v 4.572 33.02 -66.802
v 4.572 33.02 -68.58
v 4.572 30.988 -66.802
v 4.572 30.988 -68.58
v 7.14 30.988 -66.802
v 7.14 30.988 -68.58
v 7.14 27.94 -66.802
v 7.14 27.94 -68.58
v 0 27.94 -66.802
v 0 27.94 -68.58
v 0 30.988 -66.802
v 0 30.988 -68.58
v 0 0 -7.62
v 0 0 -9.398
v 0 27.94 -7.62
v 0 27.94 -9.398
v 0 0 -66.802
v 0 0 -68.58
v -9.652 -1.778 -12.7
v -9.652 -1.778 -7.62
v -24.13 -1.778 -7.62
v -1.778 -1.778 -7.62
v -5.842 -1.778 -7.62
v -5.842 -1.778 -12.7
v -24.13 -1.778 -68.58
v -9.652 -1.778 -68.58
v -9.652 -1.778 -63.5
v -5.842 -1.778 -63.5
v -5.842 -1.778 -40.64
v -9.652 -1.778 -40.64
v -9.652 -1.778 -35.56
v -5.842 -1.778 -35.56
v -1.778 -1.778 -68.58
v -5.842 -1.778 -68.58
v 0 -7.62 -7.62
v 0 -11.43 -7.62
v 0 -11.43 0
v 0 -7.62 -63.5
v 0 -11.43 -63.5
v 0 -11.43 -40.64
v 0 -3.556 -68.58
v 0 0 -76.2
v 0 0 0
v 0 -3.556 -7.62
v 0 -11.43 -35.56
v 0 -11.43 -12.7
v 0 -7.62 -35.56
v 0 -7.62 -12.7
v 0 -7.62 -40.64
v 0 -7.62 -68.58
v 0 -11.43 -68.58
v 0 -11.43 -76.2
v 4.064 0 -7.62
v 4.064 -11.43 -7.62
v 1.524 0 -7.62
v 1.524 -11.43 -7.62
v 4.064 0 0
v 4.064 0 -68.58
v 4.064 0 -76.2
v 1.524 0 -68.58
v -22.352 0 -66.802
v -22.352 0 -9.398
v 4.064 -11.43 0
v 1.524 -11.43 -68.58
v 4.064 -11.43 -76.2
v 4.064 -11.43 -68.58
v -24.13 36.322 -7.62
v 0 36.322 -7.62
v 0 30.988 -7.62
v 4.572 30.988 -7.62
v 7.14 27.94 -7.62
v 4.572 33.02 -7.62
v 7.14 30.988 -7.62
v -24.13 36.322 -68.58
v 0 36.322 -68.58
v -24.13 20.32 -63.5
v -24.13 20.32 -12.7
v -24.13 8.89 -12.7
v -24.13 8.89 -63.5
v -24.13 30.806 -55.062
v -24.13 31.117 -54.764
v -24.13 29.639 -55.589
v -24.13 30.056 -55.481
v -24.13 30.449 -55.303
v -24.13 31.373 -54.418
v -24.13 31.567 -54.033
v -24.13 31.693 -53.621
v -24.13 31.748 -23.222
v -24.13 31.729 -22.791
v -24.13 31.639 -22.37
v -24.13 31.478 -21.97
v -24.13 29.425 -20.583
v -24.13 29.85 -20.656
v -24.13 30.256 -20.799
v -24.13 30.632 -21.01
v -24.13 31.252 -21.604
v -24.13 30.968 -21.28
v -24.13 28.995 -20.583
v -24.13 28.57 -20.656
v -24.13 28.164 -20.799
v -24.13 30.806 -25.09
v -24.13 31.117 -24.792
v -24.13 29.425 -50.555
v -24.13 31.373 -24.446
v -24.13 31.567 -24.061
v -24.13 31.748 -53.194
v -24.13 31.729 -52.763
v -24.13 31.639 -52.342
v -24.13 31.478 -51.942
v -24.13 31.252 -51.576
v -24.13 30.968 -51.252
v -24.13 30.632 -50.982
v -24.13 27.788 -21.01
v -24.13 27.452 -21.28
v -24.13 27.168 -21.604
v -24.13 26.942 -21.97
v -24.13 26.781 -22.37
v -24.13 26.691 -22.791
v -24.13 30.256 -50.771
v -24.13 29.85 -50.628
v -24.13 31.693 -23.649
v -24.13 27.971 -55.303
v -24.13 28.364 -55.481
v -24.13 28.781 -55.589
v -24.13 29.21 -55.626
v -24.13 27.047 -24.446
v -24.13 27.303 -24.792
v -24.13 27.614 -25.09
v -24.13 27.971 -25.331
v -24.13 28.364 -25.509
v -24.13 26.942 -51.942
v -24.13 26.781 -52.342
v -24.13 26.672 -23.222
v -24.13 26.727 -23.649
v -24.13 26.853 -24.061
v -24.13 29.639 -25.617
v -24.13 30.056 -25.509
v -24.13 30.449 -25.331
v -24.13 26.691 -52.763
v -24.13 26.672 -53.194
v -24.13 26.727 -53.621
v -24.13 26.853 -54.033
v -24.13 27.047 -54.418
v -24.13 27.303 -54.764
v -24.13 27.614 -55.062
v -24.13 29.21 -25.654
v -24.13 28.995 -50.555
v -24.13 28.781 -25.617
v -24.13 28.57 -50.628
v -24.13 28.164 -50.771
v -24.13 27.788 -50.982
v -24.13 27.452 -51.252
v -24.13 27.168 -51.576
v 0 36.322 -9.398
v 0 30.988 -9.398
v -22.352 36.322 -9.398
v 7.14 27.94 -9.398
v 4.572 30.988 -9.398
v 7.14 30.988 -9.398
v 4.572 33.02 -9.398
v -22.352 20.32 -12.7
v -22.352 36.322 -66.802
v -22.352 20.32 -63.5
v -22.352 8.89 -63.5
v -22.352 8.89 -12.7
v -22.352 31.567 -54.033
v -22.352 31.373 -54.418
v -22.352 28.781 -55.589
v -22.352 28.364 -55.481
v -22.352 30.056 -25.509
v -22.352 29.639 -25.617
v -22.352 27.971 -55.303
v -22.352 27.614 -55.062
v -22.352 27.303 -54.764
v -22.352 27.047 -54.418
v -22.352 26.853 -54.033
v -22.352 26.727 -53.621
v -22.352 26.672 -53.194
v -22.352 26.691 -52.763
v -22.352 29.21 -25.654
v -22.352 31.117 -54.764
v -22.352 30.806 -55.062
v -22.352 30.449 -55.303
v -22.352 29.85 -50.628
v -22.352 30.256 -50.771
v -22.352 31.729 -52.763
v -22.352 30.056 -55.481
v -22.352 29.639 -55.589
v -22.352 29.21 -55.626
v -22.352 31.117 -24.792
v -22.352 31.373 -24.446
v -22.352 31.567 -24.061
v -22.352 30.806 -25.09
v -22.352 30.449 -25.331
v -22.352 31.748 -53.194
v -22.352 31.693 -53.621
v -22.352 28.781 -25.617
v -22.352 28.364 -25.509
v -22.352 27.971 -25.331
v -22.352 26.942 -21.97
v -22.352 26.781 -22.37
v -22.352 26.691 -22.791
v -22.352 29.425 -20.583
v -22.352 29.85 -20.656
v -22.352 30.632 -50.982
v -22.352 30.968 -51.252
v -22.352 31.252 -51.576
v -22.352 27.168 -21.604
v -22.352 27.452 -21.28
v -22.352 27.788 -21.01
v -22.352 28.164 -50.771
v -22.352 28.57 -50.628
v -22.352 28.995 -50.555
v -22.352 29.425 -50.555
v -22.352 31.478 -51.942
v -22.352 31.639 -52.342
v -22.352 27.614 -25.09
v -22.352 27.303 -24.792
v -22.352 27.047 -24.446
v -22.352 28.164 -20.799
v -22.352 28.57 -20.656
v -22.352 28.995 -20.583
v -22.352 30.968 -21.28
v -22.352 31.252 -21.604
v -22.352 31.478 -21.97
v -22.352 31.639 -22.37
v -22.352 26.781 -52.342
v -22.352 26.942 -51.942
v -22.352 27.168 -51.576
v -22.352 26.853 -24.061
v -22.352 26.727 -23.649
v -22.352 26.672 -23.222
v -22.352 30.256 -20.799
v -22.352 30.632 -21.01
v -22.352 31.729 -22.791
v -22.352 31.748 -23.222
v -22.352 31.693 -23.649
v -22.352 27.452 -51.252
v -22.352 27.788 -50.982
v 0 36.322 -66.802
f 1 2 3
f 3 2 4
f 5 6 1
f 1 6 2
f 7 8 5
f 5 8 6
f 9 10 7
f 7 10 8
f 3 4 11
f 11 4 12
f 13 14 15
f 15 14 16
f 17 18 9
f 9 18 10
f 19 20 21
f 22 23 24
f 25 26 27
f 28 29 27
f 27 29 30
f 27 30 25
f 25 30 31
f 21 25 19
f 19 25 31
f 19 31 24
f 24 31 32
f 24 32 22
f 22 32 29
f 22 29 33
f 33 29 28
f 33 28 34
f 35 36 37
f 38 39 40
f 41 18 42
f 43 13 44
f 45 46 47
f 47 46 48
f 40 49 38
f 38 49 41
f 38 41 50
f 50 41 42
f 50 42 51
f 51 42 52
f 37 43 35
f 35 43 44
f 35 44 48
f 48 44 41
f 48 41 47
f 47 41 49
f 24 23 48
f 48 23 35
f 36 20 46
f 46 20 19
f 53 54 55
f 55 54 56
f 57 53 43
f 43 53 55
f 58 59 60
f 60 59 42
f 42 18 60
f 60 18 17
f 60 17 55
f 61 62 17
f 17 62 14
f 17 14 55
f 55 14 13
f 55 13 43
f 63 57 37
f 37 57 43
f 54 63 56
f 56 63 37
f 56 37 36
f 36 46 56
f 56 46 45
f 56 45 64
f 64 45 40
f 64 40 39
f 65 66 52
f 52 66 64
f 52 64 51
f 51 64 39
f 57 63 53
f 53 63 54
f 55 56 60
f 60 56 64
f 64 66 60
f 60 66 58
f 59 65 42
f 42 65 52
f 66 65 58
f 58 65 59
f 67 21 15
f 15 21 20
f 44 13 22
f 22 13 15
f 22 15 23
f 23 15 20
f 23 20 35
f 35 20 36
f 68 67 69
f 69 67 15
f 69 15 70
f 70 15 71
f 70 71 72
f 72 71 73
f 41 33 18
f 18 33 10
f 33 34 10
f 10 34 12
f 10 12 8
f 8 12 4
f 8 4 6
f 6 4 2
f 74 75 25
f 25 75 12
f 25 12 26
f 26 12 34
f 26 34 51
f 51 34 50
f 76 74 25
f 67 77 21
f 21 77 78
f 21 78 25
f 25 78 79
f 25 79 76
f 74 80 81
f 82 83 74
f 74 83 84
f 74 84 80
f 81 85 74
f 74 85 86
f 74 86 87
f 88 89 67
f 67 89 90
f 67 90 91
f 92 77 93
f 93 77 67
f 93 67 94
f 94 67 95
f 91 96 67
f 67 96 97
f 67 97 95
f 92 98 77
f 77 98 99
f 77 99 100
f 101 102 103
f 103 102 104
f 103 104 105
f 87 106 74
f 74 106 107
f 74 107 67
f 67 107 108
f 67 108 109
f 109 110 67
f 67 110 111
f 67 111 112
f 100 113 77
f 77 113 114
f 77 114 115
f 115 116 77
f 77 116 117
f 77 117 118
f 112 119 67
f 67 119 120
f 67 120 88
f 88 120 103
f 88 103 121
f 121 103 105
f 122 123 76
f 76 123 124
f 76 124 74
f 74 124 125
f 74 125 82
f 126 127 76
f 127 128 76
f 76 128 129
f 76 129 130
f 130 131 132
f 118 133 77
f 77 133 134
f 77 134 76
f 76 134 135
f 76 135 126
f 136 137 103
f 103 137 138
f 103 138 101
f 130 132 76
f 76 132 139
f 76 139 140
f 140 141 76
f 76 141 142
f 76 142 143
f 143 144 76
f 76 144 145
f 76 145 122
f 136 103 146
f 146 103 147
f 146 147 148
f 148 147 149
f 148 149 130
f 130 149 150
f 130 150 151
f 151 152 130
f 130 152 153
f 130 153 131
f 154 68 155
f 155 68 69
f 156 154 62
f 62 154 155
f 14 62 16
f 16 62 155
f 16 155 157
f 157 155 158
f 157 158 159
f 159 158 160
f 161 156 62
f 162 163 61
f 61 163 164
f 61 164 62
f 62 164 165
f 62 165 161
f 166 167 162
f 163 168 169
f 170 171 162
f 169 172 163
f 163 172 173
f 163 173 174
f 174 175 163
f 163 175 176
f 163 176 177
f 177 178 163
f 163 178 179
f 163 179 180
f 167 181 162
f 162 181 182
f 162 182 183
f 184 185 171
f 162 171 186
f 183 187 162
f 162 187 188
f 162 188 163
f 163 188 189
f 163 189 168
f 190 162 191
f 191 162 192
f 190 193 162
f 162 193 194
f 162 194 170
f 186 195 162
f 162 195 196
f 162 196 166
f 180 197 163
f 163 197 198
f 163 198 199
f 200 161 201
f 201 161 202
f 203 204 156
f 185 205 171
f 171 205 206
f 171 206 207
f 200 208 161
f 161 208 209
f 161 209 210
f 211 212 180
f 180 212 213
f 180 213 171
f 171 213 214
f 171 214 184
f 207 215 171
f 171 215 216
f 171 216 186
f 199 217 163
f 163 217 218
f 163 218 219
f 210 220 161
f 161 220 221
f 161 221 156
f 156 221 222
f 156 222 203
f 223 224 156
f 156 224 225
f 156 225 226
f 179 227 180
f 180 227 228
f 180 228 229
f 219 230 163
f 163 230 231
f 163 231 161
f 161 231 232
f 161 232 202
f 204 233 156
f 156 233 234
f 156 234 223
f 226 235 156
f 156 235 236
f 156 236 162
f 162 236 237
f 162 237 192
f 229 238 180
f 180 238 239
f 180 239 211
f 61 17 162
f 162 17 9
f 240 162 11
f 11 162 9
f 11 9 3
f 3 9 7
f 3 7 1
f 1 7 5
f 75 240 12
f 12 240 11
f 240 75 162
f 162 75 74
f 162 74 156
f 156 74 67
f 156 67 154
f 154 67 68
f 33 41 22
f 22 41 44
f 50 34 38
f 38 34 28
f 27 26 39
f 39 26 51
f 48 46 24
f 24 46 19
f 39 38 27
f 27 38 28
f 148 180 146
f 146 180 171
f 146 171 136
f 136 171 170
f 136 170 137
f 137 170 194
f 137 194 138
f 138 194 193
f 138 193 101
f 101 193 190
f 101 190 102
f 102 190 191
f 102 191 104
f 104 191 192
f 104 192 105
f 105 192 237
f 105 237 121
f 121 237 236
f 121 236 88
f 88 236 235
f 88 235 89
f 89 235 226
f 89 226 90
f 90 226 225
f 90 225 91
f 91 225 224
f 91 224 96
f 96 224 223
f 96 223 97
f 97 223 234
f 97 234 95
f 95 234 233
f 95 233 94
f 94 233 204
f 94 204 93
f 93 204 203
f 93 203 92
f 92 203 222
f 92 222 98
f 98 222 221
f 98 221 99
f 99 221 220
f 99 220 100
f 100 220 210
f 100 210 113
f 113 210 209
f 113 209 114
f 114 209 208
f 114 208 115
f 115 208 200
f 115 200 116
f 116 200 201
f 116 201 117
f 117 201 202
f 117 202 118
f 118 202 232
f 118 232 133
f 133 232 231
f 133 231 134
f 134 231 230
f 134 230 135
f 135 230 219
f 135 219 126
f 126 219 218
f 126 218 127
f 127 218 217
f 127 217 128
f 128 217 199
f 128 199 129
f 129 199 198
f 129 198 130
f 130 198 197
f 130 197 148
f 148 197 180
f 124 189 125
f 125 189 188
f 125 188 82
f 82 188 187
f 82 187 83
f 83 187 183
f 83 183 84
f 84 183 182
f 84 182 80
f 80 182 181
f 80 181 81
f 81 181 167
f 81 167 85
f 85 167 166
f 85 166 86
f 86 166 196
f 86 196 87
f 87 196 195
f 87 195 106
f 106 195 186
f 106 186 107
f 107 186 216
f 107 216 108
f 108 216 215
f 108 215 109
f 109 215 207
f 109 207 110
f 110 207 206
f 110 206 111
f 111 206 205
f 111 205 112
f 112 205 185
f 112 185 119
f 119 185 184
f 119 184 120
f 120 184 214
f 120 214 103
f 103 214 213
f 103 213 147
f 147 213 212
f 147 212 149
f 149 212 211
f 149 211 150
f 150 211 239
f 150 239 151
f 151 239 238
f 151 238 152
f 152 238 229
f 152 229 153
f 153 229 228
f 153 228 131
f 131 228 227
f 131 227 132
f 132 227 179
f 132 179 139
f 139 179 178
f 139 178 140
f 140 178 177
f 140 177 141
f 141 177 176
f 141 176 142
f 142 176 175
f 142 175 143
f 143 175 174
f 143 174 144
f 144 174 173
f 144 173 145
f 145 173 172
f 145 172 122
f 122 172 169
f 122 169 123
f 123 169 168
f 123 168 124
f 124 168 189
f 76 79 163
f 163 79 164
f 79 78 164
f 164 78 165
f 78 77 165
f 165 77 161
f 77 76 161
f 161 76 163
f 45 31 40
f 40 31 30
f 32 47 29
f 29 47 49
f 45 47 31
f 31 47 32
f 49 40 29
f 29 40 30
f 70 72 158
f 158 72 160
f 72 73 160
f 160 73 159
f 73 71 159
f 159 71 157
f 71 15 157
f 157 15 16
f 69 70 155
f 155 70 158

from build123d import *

# Parameters (mm, degrees)
BOSS_EXTRUDE1_DEPTH   = 4.064
BOSS_EXTRUDE1_2_DEPTH = 4.064
SKETCH1_3_W           = 60.96
SKETCH1_3_H           = 9.652
SKETCH1_3_H_2         = 1.778
BOSS_EXTRUDE2_DEPTH   = 1.524
SKETCH1_6_W           = 60.96
SKETCH1_6_H           = 1.778
BOSS_EXTRUDE3_DEPTH   = 24.13
BOSS_EXTRUDE4_DEPTH   = 38.1
BOSS_EXTRUDE7_DEPTH   = 60.96
BOSS_EXTRUDE8_DEPTH   = 60.96
CUT_EXTRUDE2_START    = -5.08
CUT_EXTRUDE2_DEPTH    = 50.8
SKETCH6_R             = 2.54
CUT_EXTRUDE3_DEPTH    = 89.450736232
BOSS_EXTRUDE9_START   = -27.94
BOSS_EXTRUDE9_DEPTH   = 5.08
BOSS_EXTRUDE10_REACH  = 83.27
CUT_EXTRUDE4_START    = -1.778
CUT_EXTRUDE4_DEPTH    = 57.404


with BuildPart() as part:
    # Sketch1 → Boss-Extrude1 (new body)
    with BuildSketch(Plane(origin=(0, 0, 0), x_dir=(0, 0, -1), z_dir=(1, 0, 0))):
        Polygon((7.62, 0), (0, 0), (0, -11.43), (7.62, -11.43), (7.62, -1.778), align=None)
    extrude(amount=BOSS_EXTRUDE1_DEPTH)



with BuildPart() as body_2:
    # Sketch1 → Boss-Extrude1 2 (new body)
    with BuildSketch(Plane(origin=(0, 0, 0), x_dir=(0, 0, -1), z_dir=(1, 0, 0))):
        Polygon((76.2, 0), (68.58, 0), (68.58, -1.778), (68.58, -11.43), (76.2, -11.43), align=None)
    extrude(amount=BOSS_EXTRUDE1_2_DEPTH)


with BuildPart() as part_1:
    add(part.part)

    add(body_2.part)  # Boss-Extrude2 merges body 2
    # Sketch1<3> → Boss-Extrude2 (add)
    with BuildSketch(Plane(origin=(0, 0, 0), x_dir=(0, 0, -1), z_dir=(1, 0, 0))):
        with Locations((38.1, -6.604)):
            Rectangle(SKETCH1_3_W, SKETCH1_3_H)
        with Locations((38.1, -0.889)):
            Rectangle(SKETCH1_3_W, SKETCH1_3_H_2)
    extrude(amount=BOSS_EXTRUDE2_DEPTH)

    # Sketch1<6> → Boss-Extrude3 (add)
    with BuildSketch(Plane(origin=(0, 0, 0), x_dir=(0, 0, -1), z_dir=(1, 0, 0))):
        with Locations((38.1, -0.889)):
            Rectangle(SKETCH1_6_W, SKETCH1_6_H)
    extrude(amount=-BOSS_EXTRUDE3_DEPTH)

    # Sketch4 → Boss-Extrude4 (add)
    with BuildSketch(Plane.XZ.offset(1.778)):
        Polygon((0, -7.62), (-24.13, -7.62), (-24.13, -68.58), (0, -68.58), (0, -66.802), (-22.352, -66.802), (-22.352, -9.398), (0, -9.398), align=None)
    extrude(amount=-BOSS_EXTRUDE4_DEPTH)

    # Sketch5<4> → Boss-Extrude7 (add)
    with BuildSketch(Plane(origin=(0, 0, -68.58), x_dir=(-1, 0, 0), z_dir=(0, 0, -1))):
        Polygon((1.778, -1.778), (0, -1.778), (0, -3.556), align=None)
    extrude(amount=-BOSS_EXTRUDE7_DEPTH)

    # Sketch5<5> → Boss-Extrude8 (add)
    with BuildSketch(Plane(origin=(0, 0, -68.58), x_dir=(-1, 0, 0), z_dir=(0, 0, -1))):
        Polygon((9.652, -1.778), (5.842, -1.778), (0, -7.62), (0, -11.43), align=None)
    extrude(amount=-BOSS_EXTRUDE8_DEPTH)

    # Sketch5 → Cut-Extrude2 (cut)
    with BuildSketch(Plane(origin=(0, 0, -68.58), x_dir=(-1, 0, 0), z_dir=(0, 0, -1)).offset(CUT_EXTRUDE2_START)):
        Polygon((9.652, -1.778), (5.842, -1.778), (0, -7.62), (0, -11.43), align=None)
    extrude(amount=-CUT_EXTRUDE2_DEPTH, mode=Mode.SUBTRACT)

    # Sketch6 → Cut-Extrude3 (cut, through all)
    with BuildSketch(Plane(origin=(-22.352, 0, 0), x_dir=(0, 0, -1), z_dir=(1, 0, 0))):
        with Locations((23.114, 29.21)):
            Circle(SKETCH6_R)
        with Locations((53.086, 29.21)):
            Circle(SKETCH6_R)
        Polygon((38.1, 20.32), (12.7, 20.32), (12.7, 8.89), (63.5, 8.89), (63.5, 20.32), align=None)
    extrude(amount=-CUT_EXTRUDE3_DEPTH, mode=Mode.SUBTRACT)

    # Sketch5<12> → Boss-Extrude9 (add)
    with BuildSketch(Plane(origin=(0, 0, -68.58), x_dir=(-1, 0, 0), z_dir=(0, 0, -1)).offset(BOSS_EXTRUDE9_START)):
        Polygon((9.652, -1.778), (5.842, -1.778), (0, -7.62), (0, -11.43), align=None)
    extrude(amount=-BOSS_EXTRUDE9_DEPTH)

    # Boss-Extrude10: up to this face of the body (flat: up to its plane)
    boss_extrude10_end = Plane(part_1.part.faces().sort_by_distance((-11.79395977, 16.525022989, -68.58))[0])
    # Sketch9 → Boss-Extrude10 (add, up to the picked face)
    with BuildSketch(Plane.XY.offset(-7.62), mode=Mode.PRIVATE) as boss_extrude10_sk1:
        Polygon((0, 27.94), (0, 30.988), (4.572, 30.988), (4.572, 33.02), (7.140253406, 30.988), (7.140253406, 27.94), align=None)
    boss_extrude10_tool1 = split(extrude(boss_extrude10_sk1.sketch, amount=-BOSS_EXTRUDE10_REACH, mode=Mode.PRIVATE), bisect_by=boss_extrude10_end, keep=Keep.BOTH, mode=Mode.PRIVATE)
    add(boss_extrude10_tool1.solids().sort_by(Axis((3.769039, 29.699674, -7.62), (0, 0, -1)))[0])

    # Sketch9<2> → Cut-Extrude4 (cut)
    with BuildSketch(Plane.XY.offset(-7.62).offset(CUT_EXTRUDE4_START)):
        Polygon((0, 27.94), (0, 30.988), (4.572, 30.988), (4.572, 33.02), (7.140253406, 30.988), (7.140253406, 27.94), align=None)
    extrude(amount=-CUT_EXTRUDE4_DEPTH, mode=Mode.SUBTRACT)


solid = part_1.part
